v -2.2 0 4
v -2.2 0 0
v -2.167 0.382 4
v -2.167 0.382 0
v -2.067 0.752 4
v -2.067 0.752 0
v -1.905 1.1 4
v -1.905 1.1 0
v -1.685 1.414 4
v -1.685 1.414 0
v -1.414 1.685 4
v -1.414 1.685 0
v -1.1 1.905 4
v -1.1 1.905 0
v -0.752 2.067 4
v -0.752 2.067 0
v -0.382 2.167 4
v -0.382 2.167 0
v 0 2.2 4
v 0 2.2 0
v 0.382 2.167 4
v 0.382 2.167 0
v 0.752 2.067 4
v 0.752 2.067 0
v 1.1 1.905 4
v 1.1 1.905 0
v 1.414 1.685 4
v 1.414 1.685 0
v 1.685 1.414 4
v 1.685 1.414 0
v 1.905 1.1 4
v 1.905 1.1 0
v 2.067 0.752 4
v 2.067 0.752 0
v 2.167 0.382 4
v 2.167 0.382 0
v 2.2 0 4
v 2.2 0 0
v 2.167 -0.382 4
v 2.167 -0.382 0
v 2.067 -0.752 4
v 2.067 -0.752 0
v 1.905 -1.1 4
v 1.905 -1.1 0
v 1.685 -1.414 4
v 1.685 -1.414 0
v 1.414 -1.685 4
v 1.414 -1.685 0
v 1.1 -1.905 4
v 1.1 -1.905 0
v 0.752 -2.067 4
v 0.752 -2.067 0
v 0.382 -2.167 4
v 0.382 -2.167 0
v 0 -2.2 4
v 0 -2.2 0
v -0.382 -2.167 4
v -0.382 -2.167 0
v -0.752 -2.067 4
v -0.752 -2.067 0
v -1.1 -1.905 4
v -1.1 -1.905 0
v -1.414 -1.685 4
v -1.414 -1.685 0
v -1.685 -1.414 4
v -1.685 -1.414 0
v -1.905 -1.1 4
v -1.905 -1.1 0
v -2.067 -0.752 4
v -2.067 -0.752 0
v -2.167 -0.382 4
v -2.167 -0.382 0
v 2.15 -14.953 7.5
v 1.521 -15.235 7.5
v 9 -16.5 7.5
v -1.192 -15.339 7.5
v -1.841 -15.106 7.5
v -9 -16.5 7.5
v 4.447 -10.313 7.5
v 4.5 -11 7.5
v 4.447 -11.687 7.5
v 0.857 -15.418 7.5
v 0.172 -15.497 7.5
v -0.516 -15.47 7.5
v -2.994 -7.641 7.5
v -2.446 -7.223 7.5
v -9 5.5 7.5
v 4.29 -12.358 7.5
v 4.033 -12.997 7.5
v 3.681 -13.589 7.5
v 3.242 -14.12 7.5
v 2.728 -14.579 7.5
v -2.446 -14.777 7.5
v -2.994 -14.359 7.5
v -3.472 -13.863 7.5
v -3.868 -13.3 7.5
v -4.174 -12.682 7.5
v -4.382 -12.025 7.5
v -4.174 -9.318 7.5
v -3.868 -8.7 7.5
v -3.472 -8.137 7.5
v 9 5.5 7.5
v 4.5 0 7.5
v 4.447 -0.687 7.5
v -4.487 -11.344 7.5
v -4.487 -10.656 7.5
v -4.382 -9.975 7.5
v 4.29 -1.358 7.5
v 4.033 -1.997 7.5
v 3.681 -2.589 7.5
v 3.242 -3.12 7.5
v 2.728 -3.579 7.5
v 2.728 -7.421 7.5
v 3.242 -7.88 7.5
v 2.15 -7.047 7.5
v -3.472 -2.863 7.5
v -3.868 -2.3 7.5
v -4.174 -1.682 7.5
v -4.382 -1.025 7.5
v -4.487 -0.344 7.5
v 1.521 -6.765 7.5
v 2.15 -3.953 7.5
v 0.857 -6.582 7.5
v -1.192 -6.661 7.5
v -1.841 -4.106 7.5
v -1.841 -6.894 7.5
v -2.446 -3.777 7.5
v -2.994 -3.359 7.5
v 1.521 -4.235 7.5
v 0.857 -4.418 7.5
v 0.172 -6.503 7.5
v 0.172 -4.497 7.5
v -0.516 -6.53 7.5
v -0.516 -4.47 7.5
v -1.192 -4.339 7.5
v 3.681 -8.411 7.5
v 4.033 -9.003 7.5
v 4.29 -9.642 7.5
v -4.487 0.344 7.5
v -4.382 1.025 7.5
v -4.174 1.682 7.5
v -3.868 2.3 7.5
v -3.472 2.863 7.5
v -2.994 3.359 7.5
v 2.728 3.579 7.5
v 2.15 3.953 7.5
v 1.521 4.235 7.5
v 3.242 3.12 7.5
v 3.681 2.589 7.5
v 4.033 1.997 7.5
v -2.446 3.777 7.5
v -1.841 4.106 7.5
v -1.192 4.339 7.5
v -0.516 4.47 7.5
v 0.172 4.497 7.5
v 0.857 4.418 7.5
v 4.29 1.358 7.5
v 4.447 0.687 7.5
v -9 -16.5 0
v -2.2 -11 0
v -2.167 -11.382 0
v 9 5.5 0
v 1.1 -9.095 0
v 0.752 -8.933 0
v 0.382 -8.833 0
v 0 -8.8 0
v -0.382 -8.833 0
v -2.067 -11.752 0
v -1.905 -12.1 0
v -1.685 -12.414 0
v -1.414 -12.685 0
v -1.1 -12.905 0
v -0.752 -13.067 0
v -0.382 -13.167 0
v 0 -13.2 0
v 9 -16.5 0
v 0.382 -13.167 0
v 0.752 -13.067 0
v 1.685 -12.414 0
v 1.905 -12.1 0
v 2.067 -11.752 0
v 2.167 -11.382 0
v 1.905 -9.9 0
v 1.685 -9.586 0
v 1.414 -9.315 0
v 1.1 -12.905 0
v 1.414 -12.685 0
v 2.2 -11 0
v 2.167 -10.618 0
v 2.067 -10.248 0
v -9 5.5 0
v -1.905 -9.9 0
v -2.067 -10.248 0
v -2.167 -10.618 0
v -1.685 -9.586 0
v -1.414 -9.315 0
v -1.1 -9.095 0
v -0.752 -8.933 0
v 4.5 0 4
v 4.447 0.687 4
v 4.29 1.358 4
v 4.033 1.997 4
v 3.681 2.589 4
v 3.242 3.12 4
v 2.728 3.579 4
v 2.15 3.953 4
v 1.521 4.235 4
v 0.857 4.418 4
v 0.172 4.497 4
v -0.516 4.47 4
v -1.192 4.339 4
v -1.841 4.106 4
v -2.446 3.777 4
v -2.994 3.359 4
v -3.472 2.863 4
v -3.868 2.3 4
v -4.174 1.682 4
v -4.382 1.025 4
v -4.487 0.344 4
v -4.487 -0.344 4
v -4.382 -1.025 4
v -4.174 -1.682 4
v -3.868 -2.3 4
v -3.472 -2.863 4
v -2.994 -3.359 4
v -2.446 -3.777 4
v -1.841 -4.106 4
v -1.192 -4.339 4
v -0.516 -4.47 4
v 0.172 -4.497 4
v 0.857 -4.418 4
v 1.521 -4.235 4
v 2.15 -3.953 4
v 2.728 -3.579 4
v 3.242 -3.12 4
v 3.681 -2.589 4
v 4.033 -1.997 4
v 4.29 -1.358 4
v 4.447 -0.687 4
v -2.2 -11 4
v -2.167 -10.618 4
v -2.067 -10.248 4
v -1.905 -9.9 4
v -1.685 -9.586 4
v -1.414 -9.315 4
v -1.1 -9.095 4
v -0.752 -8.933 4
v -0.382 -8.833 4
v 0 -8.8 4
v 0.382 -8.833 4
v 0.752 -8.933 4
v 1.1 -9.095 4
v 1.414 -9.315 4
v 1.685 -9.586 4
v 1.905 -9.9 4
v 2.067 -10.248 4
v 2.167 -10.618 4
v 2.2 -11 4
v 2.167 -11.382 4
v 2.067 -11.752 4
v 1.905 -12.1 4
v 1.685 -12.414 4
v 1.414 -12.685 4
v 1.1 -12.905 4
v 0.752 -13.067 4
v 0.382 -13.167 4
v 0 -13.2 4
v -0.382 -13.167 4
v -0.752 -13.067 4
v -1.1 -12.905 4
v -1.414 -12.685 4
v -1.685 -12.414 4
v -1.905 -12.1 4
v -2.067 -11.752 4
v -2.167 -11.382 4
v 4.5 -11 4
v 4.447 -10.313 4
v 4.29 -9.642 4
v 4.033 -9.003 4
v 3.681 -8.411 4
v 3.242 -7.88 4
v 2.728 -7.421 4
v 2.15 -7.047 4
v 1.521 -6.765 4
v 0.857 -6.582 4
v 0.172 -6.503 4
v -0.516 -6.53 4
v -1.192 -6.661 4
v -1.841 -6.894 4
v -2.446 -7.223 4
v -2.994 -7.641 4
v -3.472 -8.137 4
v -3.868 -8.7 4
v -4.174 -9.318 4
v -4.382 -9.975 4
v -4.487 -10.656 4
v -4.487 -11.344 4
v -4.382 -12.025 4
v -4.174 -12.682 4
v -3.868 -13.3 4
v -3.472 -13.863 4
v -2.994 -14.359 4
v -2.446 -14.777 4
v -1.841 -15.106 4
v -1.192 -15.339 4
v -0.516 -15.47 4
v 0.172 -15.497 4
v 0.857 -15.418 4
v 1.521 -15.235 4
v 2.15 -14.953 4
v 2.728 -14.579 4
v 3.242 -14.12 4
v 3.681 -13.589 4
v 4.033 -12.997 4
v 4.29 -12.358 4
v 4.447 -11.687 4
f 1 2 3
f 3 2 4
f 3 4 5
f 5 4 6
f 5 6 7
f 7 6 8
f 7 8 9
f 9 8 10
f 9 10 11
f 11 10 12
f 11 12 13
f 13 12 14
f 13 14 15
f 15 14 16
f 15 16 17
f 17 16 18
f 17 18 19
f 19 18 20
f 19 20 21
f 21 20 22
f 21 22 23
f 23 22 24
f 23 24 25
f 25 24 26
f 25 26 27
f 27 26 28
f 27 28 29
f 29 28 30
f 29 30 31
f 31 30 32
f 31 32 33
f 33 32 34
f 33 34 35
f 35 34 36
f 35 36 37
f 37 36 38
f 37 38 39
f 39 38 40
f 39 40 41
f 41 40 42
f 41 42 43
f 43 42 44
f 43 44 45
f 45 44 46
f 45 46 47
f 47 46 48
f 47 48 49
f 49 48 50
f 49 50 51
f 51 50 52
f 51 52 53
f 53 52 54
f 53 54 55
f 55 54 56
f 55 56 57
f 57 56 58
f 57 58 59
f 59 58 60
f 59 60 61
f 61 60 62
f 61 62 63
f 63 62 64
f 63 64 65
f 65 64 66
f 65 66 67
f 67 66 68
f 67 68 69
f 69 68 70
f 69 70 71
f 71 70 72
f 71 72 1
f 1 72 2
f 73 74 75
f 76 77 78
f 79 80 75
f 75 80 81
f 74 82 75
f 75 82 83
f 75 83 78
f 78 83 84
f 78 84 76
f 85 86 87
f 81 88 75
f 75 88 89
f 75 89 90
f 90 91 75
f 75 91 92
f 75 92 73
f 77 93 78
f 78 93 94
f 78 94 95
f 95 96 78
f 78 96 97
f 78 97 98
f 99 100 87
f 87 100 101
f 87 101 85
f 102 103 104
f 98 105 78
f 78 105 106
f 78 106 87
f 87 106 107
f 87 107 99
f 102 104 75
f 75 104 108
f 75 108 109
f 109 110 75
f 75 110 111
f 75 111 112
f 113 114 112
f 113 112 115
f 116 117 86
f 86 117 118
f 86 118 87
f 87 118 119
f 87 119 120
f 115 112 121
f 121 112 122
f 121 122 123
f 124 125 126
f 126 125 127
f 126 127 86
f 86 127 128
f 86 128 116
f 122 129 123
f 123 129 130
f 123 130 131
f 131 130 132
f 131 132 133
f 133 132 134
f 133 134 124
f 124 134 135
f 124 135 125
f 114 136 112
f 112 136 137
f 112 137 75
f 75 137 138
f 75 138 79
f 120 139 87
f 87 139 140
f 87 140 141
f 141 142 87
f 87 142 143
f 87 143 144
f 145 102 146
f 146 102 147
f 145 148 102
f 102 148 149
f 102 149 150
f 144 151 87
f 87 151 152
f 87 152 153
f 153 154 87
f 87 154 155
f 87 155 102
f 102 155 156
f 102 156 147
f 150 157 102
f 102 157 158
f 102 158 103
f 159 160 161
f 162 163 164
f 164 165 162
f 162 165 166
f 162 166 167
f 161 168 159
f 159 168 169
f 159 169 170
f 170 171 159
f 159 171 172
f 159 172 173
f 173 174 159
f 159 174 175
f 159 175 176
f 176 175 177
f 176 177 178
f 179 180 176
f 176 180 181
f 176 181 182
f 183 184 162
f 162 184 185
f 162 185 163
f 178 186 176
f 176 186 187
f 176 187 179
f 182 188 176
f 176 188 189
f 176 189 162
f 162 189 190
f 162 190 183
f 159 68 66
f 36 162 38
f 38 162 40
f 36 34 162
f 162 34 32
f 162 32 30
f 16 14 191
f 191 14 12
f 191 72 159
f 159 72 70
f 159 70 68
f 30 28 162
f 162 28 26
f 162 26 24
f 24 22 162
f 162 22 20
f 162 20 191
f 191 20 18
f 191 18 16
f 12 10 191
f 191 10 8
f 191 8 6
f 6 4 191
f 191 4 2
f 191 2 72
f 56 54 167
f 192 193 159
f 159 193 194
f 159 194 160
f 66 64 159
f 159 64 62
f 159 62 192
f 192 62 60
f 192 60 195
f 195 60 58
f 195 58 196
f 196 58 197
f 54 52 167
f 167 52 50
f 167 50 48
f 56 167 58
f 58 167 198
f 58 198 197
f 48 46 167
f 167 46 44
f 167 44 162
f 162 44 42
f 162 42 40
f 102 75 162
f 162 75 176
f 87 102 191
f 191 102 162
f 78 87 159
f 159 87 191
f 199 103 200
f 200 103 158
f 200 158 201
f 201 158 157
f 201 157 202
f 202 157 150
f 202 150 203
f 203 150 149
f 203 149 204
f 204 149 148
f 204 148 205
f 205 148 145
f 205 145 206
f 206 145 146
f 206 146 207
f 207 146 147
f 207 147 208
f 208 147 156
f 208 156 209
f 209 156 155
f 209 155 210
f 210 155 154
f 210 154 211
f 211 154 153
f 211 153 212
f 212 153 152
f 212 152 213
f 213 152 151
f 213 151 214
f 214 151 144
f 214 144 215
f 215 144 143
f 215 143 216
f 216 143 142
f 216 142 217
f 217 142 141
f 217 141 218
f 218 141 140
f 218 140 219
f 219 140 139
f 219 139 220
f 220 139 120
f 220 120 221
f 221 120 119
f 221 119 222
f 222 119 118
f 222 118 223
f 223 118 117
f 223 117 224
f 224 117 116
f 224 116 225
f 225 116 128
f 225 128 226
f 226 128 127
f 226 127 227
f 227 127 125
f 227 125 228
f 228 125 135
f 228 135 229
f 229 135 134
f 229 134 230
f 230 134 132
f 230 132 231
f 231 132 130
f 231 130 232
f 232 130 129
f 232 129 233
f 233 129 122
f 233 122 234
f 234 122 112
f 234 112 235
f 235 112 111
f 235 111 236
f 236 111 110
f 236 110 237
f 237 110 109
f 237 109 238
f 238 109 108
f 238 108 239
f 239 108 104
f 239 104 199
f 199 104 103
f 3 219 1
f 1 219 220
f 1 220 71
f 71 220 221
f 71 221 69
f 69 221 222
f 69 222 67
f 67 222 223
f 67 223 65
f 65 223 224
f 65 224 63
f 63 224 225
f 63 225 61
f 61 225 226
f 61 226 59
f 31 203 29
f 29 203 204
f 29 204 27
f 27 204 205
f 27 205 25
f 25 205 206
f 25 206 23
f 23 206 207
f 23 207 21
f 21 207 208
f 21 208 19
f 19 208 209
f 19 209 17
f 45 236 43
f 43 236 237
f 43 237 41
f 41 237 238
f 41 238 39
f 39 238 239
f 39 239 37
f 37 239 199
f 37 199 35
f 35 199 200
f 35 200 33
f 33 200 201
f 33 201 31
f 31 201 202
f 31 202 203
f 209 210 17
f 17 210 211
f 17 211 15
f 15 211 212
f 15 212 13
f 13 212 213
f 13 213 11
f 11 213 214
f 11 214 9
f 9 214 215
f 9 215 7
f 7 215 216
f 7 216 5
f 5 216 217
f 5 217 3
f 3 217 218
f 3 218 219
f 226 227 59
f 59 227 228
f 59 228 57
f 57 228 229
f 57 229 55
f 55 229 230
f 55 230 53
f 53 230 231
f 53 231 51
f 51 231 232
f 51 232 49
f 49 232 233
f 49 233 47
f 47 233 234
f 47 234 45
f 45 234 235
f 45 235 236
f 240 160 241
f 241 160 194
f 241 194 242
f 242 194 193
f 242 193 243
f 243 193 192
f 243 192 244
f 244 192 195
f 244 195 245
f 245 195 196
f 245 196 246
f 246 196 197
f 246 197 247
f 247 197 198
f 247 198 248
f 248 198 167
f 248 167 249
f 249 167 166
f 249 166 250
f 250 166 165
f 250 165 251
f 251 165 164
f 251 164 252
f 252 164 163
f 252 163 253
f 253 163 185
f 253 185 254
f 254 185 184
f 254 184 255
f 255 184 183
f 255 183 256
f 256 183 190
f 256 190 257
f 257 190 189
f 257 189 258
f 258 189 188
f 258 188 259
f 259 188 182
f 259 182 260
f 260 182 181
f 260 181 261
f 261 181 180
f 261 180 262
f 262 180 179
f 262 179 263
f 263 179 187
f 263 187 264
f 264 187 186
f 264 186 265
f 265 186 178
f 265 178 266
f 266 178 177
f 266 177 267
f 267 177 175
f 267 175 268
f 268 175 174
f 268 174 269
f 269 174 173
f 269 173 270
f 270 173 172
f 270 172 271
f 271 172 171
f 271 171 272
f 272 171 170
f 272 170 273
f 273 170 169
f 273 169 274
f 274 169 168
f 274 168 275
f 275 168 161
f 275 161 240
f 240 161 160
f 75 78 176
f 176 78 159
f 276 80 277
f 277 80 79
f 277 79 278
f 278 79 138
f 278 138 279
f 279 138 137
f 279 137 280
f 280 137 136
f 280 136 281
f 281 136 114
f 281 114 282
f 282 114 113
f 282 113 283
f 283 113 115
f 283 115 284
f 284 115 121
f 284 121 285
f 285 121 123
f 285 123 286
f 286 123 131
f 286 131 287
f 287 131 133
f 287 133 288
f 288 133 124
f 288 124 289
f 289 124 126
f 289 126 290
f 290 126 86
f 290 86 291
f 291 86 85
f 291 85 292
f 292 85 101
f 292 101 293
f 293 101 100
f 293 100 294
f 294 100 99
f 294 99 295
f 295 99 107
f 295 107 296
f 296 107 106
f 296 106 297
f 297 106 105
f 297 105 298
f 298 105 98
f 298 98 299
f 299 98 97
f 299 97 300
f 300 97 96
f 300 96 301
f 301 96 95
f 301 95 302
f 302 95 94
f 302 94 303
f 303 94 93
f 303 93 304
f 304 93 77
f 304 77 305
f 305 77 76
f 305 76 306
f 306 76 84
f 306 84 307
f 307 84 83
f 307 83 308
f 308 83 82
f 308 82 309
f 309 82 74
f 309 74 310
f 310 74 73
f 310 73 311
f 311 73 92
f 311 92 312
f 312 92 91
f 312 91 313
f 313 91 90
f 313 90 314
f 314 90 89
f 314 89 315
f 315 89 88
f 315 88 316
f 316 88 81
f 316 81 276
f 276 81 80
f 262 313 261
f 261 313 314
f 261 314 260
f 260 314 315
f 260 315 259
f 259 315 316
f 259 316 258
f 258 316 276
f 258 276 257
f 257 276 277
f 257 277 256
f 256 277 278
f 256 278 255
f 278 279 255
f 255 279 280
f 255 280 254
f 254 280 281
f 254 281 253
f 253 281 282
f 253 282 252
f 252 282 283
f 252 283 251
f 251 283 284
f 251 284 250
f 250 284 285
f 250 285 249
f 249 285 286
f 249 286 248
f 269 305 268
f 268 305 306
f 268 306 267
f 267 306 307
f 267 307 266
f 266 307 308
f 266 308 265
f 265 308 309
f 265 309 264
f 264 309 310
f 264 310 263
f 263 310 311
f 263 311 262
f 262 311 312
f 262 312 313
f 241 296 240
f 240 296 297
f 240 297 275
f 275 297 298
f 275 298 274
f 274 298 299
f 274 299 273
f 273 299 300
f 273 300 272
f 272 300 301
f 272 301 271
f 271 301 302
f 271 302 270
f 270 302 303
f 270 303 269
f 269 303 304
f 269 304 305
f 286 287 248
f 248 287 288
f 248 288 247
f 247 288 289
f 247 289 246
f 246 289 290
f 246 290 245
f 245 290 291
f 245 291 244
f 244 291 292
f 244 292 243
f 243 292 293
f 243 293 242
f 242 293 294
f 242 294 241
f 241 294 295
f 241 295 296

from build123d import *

# Parameters (mm, degrees)
SKIZZE1_W                       = 18
SKIZZE1_H                       = 11
SKIZZE1_R                       = 2.2
AUFSATZ_LINEAR_AUSTRAGEN1_DEPTH = 7.5
SKIZZE2_R                       = 4.5
SCHNITT_LINEAR_AUSTRAGEN1_DEPTH = 3.5


with BuildPart() as part:
    # Skizze1 → Aufsatz-Linear austragen1 (new body)
    with BuildSketch(Plane.XY):
        Rectangle(SKIZZE1_W, SKIZZE1_H)
        Circle(SKIZZE1_R, mode=Mode.SUBTRACT)
    extrude(amount=AUFSATZ_LINEAR_AUSTRAGEN1_DEPTH)

    # Skizze2 → Schnitt-Linear austragen1 (cut)
    with BuildSketch(Plane.XY.offset(7.5)):
        Circle(SKIZZE2_R)
    extrude(amount=-SCHNITT_LINEAR_AUSTRAGEN1_DEPTH, mode=Mode.SUBTRACT)

    # Spiegeln1: part across plane


with BuildPart() as part_1:
    add(part.part)
    add(part.part.mirror(Plane(origin=(-9, -5.5, 7.5), x_dir=(0, 0, 1), z_dir=(0, 1, 0))))


solid = part_1.part
